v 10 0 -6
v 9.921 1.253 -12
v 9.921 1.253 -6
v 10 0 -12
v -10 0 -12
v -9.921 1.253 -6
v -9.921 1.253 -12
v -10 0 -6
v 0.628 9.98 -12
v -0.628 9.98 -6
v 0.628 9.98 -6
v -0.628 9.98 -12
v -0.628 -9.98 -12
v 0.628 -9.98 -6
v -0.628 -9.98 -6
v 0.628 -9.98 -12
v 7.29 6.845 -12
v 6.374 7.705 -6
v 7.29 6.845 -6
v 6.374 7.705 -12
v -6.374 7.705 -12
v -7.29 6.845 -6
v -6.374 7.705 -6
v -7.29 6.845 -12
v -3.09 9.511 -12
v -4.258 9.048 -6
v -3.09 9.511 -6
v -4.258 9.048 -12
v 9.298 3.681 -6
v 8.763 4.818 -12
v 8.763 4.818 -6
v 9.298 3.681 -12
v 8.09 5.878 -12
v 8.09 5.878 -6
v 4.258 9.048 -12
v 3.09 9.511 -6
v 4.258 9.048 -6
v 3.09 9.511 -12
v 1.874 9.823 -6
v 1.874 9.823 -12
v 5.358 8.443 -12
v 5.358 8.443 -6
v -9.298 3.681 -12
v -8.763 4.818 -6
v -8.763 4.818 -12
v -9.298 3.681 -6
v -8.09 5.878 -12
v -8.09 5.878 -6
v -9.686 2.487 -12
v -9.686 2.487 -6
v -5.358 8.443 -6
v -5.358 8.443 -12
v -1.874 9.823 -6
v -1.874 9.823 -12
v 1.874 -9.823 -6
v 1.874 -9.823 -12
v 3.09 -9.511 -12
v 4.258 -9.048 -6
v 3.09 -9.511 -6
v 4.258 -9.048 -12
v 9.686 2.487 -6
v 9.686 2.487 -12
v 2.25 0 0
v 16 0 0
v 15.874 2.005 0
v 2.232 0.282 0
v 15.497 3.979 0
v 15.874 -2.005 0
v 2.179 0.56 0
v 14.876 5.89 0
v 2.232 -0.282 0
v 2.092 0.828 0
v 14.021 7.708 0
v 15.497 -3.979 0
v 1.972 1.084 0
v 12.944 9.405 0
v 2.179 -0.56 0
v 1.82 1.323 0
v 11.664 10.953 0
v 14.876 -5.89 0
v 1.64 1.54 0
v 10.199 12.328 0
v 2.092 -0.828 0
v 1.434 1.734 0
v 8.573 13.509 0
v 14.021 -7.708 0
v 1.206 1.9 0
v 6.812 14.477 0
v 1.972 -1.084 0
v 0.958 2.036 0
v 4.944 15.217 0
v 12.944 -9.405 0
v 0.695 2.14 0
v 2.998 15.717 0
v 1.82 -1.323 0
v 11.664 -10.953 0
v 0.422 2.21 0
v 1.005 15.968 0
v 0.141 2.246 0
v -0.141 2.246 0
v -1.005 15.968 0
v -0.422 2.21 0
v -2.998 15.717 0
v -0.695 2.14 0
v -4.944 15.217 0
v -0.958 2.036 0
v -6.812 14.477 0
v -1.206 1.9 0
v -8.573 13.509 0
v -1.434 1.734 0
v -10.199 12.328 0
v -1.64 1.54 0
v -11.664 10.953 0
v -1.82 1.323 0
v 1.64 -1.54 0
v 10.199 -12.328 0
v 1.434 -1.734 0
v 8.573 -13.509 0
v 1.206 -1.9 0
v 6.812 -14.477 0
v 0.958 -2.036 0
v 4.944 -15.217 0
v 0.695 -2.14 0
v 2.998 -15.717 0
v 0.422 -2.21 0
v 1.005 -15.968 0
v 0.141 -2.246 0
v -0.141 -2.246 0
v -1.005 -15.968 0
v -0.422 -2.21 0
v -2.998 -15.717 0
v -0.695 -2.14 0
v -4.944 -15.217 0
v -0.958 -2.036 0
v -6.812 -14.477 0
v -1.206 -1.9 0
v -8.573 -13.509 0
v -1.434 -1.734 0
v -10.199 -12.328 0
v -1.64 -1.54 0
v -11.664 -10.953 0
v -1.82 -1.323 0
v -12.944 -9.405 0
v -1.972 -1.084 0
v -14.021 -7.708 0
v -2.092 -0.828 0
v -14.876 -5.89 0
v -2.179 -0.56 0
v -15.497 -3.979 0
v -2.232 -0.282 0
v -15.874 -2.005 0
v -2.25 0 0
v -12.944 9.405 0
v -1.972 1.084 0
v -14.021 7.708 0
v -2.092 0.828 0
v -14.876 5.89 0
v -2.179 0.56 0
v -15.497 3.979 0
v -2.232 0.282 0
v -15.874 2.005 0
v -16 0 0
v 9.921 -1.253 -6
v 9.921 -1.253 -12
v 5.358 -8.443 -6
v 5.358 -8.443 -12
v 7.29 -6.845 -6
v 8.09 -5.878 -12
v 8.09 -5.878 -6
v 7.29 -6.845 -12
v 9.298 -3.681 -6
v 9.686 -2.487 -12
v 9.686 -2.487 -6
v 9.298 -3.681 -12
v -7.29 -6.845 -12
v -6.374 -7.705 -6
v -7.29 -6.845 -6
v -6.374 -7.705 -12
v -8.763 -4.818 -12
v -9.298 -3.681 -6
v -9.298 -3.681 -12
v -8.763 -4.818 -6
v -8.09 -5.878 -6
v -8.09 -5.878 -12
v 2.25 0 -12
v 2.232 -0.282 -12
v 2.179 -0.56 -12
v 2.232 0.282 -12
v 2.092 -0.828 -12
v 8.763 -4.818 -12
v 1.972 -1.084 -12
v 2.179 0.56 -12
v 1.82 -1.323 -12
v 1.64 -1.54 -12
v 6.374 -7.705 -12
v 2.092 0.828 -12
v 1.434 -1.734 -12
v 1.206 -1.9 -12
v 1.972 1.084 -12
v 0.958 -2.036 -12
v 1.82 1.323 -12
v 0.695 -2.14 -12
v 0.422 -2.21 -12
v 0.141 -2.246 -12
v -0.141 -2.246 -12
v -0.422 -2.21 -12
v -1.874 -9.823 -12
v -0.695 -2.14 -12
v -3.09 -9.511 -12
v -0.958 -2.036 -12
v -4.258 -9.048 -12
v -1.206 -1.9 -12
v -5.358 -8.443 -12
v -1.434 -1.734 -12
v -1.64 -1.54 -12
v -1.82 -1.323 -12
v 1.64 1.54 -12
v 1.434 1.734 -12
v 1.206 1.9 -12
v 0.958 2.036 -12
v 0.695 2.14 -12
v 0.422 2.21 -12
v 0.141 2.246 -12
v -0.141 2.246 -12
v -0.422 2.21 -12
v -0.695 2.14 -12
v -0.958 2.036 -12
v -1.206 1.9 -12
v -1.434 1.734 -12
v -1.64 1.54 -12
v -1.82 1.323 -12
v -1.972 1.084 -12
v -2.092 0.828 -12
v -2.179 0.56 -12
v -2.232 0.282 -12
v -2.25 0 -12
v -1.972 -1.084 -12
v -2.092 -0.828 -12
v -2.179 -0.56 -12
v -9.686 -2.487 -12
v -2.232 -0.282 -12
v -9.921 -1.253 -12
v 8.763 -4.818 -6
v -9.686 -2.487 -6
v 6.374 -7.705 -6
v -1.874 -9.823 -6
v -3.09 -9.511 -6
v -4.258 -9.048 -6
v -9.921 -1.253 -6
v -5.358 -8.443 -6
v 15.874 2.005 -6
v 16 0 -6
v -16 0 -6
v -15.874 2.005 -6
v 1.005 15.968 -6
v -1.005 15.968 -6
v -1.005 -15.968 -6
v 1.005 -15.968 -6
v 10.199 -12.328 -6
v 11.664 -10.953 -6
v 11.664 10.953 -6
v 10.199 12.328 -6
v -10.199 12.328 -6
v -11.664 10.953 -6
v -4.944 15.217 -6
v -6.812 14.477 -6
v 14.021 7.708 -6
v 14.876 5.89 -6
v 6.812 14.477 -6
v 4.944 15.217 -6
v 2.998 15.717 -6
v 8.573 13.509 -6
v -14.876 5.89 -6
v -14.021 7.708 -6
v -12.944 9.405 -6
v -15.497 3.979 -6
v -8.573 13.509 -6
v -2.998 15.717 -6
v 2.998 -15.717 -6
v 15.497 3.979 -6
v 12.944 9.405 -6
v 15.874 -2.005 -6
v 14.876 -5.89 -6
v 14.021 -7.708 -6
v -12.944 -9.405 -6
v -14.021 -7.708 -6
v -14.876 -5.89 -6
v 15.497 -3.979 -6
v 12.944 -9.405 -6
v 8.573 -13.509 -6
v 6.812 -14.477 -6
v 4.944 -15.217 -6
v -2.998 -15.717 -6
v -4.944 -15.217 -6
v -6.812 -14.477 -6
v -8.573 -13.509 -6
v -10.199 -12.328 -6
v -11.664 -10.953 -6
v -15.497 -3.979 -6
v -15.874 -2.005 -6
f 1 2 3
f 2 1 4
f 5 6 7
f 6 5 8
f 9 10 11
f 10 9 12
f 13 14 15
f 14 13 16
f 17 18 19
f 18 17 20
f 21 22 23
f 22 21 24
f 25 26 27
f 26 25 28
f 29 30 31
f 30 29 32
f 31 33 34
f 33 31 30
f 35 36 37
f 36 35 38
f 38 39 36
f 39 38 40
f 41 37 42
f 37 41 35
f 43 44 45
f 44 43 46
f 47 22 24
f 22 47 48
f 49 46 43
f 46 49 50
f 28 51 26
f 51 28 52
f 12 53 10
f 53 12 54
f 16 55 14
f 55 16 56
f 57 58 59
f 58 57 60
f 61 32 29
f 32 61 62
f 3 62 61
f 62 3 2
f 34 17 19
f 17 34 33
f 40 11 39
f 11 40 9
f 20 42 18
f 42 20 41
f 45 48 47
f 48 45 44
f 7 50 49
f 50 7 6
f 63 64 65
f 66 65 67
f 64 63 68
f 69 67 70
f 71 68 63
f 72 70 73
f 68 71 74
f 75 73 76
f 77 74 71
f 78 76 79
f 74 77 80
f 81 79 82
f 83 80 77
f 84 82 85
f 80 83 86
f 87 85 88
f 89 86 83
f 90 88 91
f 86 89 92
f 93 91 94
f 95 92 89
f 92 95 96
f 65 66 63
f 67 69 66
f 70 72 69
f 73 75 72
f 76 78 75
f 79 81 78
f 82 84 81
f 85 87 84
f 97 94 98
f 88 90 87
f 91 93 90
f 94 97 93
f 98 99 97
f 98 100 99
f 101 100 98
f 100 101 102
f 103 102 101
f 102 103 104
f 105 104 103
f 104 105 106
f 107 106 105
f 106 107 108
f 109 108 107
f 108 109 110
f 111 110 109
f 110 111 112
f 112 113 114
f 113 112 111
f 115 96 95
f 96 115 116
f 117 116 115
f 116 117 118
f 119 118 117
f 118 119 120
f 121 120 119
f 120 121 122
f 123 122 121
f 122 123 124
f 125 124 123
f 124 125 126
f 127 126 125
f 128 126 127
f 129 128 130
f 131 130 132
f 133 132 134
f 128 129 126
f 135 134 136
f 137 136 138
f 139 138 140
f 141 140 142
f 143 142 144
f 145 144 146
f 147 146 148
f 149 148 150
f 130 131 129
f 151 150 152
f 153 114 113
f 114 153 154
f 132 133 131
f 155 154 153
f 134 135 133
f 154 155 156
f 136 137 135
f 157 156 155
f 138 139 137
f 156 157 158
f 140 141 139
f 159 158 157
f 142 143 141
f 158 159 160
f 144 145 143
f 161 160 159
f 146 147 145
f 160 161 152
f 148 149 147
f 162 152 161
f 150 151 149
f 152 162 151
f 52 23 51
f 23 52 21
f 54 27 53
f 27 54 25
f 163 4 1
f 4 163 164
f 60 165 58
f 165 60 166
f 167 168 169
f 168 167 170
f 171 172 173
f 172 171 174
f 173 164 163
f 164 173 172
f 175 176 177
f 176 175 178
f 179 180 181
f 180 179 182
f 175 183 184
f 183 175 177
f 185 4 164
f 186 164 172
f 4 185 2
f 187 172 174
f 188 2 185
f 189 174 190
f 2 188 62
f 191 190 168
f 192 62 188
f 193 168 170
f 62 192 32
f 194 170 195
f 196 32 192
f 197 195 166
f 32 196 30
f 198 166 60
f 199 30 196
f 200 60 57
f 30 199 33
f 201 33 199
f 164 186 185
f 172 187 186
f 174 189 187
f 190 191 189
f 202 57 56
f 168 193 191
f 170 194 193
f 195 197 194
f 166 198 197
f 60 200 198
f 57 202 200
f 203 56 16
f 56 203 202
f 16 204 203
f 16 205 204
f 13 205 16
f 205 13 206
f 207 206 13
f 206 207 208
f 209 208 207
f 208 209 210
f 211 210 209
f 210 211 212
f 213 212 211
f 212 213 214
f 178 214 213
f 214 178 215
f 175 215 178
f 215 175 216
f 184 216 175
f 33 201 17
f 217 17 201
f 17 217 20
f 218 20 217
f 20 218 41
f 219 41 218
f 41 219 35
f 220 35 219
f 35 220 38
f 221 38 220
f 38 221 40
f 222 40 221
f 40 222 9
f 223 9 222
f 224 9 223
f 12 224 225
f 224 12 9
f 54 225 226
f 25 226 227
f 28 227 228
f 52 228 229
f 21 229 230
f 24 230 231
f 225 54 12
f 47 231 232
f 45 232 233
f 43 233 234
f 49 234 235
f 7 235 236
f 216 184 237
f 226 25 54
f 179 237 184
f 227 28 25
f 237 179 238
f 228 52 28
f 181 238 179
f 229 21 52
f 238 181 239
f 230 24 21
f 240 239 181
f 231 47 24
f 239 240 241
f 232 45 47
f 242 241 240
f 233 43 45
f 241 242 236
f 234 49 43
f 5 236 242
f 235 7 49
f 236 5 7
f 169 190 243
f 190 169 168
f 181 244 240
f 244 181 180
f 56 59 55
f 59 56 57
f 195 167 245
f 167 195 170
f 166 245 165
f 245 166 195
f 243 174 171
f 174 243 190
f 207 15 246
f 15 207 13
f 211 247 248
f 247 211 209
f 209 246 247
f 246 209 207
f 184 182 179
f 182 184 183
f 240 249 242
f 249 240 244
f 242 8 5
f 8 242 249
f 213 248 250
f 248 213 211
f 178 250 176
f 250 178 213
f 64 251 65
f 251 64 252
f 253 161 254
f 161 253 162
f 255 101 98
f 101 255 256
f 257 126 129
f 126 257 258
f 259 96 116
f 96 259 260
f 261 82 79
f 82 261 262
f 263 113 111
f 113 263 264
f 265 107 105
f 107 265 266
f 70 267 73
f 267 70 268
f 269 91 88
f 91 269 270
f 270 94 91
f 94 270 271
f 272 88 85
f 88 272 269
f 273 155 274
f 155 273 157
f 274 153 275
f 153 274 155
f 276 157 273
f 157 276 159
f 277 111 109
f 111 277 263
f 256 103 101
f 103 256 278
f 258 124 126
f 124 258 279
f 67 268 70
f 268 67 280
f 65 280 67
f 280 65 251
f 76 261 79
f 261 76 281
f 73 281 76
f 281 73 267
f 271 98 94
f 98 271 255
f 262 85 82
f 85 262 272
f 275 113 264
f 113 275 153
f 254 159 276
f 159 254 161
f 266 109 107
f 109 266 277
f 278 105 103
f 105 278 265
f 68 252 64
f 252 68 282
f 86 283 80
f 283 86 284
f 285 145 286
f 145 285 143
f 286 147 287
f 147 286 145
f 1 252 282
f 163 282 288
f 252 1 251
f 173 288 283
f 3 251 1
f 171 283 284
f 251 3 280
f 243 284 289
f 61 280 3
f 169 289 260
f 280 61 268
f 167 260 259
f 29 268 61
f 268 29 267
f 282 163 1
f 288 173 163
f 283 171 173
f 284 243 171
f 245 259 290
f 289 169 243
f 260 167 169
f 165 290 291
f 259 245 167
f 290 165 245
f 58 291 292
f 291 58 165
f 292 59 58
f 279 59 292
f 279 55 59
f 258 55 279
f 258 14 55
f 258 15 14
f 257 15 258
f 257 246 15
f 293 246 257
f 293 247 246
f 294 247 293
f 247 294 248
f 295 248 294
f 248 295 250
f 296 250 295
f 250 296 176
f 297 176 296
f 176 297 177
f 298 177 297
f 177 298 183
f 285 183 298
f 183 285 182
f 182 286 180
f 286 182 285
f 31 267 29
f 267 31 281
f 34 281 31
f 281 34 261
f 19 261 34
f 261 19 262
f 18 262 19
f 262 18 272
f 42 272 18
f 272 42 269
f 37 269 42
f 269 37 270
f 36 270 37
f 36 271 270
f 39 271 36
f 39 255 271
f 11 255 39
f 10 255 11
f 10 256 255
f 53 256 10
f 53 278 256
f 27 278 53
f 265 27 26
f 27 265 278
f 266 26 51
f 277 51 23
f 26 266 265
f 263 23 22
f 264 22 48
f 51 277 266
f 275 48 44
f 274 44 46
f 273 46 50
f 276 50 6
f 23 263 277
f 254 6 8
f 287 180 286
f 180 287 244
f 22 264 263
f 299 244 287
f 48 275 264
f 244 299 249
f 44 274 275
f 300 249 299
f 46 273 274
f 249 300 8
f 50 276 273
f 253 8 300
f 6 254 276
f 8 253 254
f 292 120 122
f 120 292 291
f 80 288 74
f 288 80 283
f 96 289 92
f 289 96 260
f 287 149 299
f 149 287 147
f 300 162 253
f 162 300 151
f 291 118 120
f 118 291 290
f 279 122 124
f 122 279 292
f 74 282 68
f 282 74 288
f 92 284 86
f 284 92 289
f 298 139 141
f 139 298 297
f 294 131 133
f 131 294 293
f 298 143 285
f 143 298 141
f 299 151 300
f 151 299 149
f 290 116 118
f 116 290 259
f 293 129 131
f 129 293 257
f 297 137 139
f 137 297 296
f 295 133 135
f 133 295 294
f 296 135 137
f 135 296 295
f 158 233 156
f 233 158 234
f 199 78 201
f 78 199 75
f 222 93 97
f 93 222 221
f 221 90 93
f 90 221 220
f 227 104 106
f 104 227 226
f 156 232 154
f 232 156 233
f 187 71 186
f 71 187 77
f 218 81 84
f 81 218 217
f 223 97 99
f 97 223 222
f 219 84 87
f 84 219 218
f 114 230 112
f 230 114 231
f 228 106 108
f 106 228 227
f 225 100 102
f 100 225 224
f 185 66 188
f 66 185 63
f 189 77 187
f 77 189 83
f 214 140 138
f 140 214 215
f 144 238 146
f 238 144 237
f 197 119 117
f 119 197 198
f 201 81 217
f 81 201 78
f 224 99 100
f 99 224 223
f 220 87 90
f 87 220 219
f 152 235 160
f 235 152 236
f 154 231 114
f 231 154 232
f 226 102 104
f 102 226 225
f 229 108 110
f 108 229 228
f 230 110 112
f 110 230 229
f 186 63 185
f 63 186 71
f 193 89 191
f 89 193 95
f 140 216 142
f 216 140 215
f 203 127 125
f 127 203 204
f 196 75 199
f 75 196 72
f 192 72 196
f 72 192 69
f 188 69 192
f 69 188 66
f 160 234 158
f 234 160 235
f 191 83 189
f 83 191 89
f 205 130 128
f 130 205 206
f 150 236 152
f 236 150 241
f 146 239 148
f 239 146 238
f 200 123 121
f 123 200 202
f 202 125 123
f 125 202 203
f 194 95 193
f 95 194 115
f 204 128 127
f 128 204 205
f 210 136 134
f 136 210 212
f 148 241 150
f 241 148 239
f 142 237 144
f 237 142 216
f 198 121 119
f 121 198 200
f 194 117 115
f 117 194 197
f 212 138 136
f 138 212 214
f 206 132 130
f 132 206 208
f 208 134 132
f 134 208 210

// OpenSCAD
$fn = 50;


difference() {
	union() {
		translate(v = [0, 0, -12.0000000000]) {
			cylinder(h = 12, r = 10.0000000000);
		}
		translate(v = [0, 0, -6.0000000000]) {
			cylinder(h = 6, r = 16.0000000000);
		}
	}
	union() {
		#translate(v = [0, 0, -12]) {
			cylinder(h = 12, r = 2.2500000000);
		}
	}
}
